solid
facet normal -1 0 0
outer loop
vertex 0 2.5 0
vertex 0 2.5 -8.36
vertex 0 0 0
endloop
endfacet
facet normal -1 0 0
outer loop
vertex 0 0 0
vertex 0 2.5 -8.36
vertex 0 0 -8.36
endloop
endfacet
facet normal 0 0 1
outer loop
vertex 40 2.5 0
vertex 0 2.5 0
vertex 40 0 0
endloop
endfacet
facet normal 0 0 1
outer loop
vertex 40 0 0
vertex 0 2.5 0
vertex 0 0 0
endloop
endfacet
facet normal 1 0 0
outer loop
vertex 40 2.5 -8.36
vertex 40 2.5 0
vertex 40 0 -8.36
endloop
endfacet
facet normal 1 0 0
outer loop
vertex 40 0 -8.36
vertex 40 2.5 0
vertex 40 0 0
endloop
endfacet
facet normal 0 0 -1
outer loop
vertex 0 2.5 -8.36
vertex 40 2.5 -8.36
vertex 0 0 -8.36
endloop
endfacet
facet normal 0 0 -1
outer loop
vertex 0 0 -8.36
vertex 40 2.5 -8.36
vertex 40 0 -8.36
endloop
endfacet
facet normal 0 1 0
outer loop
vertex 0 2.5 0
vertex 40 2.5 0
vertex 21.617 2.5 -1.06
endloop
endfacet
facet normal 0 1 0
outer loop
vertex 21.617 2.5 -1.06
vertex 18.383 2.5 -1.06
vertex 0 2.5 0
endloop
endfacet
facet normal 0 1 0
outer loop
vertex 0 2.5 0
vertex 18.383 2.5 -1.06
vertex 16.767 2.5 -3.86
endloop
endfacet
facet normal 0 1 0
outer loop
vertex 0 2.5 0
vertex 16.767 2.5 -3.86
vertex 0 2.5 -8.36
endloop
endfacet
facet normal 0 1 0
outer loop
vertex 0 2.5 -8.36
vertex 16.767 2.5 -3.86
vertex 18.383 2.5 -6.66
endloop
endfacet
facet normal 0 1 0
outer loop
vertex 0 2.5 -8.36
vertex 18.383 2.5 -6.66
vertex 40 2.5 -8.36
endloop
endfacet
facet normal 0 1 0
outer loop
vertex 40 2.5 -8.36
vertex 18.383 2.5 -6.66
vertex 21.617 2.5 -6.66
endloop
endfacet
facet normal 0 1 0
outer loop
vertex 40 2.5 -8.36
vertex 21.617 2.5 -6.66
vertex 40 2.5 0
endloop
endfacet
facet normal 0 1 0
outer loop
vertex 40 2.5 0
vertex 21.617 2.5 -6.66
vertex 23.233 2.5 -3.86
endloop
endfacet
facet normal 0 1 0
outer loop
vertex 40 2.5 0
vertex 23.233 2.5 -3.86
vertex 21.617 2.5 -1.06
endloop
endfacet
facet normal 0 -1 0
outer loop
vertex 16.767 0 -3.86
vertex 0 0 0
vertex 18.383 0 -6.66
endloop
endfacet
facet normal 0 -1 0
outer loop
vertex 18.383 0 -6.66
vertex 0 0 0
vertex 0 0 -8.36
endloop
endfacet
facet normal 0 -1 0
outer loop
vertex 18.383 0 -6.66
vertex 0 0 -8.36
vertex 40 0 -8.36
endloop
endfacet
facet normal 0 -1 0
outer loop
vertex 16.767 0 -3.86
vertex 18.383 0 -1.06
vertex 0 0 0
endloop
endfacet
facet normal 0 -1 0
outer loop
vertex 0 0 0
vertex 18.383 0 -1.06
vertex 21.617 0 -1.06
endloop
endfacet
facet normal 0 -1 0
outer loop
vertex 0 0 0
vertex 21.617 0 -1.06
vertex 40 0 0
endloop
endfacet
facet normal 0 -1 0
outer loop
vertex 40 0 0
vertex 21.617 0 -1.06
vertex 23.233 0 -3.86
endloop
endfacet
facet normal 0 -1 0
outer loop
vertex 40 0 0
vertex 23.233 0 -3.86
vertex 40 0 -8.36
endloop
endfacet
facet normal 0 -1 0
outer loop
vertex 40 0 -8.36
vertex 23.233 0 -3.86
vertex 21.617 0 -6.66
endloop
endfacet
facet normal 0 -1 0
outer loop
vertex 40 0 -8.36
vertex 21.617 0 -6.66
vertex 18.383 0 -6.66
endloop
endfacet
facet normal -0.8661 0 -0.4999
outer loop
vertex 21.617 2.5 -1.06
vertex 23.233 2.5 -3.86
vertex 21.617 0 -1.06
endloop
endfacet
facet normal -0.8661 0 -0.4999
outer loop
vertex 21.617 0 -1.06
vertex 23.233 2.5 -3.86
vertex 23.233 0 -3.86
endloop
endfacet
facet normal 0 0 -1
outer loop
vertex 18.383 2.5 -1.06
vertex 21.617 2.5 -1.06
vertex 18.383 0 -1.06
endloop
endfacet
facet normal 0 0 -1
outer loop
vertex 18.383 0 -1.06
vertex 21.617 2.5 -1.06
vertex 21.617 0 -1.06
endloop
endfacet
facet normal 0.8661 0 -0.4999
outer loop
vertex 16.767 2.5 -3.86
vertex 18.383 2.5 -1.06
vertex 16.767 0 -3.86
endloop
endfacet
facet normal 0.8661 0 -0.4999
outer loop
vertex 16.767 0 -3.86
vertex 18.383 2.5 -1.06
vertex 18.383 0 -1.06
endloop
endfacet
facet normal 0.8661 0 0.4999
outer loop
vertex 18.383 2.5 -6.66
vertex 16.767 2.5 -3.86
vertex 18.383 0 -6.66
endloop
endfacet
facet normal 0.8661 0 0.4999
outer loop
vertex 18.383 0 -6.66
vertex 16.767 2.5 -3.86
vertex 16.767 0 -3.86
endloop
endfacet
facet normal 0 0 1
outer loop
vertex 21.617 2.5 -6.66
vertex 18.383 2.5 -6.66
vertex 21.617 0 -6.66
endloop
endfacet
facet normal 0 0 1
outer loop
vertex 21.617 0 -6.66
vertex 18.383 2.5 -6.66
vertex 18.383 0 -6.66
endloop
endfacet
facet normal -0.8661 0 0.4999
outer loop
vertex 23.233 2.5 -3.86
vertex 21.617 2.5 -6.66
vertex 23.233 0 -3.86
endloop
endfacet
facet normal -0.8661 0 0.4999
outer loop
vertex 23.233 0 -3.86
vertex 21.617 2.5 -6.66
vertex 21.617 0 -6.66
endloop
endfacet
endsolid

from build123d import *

# Parameters (mm, degrees)
SKIZZE1_W                       = 40
SKIZZE1_H                       = 8.36
AUFSATZ_LINEAR_AUSTRAGEN1_DEPTH = 2.5
SCHNITT_LINEAR_AUSTRAGEN1_DEPTH = 2.5


with BuildPart() as part:
    # Skizze1 → Aufsatz-Linear austragen1 (new body)
    with BuildSketch(Plane(origin=(0, 0, 0), x_dir=(1, 0, 0), z_dir=(0, 1, 0))):
        with Locations((20, 4.18)):
            Rectangle(SKIZZE1_W, SKIZZE1_H)
    extrude(amount=AUFSATZ_LINEAR_AUSTRAGEN1_DEPTH)

    # Skizze3 → Schnitt-Linear austragen1 (cut)
    with BuildSketch(Plane(origin=(0, 2.5, 0), x_dir=(1, 0, 0), z_dir=(0, 1, 0))):
        Polygon((23.233161507, 3.86), (21.616580754, 6.66), (18.383419246, 6.66), (16.766838493, 3.86), (18.383419246, 1.06), (21.616580754, 1.06), align=None)
    extrude(amount=-SCHNITT_LINEAR_AUSTRAGEN1_DEPTH, mode=Mode.SUBTRACT)


solid = part.part
